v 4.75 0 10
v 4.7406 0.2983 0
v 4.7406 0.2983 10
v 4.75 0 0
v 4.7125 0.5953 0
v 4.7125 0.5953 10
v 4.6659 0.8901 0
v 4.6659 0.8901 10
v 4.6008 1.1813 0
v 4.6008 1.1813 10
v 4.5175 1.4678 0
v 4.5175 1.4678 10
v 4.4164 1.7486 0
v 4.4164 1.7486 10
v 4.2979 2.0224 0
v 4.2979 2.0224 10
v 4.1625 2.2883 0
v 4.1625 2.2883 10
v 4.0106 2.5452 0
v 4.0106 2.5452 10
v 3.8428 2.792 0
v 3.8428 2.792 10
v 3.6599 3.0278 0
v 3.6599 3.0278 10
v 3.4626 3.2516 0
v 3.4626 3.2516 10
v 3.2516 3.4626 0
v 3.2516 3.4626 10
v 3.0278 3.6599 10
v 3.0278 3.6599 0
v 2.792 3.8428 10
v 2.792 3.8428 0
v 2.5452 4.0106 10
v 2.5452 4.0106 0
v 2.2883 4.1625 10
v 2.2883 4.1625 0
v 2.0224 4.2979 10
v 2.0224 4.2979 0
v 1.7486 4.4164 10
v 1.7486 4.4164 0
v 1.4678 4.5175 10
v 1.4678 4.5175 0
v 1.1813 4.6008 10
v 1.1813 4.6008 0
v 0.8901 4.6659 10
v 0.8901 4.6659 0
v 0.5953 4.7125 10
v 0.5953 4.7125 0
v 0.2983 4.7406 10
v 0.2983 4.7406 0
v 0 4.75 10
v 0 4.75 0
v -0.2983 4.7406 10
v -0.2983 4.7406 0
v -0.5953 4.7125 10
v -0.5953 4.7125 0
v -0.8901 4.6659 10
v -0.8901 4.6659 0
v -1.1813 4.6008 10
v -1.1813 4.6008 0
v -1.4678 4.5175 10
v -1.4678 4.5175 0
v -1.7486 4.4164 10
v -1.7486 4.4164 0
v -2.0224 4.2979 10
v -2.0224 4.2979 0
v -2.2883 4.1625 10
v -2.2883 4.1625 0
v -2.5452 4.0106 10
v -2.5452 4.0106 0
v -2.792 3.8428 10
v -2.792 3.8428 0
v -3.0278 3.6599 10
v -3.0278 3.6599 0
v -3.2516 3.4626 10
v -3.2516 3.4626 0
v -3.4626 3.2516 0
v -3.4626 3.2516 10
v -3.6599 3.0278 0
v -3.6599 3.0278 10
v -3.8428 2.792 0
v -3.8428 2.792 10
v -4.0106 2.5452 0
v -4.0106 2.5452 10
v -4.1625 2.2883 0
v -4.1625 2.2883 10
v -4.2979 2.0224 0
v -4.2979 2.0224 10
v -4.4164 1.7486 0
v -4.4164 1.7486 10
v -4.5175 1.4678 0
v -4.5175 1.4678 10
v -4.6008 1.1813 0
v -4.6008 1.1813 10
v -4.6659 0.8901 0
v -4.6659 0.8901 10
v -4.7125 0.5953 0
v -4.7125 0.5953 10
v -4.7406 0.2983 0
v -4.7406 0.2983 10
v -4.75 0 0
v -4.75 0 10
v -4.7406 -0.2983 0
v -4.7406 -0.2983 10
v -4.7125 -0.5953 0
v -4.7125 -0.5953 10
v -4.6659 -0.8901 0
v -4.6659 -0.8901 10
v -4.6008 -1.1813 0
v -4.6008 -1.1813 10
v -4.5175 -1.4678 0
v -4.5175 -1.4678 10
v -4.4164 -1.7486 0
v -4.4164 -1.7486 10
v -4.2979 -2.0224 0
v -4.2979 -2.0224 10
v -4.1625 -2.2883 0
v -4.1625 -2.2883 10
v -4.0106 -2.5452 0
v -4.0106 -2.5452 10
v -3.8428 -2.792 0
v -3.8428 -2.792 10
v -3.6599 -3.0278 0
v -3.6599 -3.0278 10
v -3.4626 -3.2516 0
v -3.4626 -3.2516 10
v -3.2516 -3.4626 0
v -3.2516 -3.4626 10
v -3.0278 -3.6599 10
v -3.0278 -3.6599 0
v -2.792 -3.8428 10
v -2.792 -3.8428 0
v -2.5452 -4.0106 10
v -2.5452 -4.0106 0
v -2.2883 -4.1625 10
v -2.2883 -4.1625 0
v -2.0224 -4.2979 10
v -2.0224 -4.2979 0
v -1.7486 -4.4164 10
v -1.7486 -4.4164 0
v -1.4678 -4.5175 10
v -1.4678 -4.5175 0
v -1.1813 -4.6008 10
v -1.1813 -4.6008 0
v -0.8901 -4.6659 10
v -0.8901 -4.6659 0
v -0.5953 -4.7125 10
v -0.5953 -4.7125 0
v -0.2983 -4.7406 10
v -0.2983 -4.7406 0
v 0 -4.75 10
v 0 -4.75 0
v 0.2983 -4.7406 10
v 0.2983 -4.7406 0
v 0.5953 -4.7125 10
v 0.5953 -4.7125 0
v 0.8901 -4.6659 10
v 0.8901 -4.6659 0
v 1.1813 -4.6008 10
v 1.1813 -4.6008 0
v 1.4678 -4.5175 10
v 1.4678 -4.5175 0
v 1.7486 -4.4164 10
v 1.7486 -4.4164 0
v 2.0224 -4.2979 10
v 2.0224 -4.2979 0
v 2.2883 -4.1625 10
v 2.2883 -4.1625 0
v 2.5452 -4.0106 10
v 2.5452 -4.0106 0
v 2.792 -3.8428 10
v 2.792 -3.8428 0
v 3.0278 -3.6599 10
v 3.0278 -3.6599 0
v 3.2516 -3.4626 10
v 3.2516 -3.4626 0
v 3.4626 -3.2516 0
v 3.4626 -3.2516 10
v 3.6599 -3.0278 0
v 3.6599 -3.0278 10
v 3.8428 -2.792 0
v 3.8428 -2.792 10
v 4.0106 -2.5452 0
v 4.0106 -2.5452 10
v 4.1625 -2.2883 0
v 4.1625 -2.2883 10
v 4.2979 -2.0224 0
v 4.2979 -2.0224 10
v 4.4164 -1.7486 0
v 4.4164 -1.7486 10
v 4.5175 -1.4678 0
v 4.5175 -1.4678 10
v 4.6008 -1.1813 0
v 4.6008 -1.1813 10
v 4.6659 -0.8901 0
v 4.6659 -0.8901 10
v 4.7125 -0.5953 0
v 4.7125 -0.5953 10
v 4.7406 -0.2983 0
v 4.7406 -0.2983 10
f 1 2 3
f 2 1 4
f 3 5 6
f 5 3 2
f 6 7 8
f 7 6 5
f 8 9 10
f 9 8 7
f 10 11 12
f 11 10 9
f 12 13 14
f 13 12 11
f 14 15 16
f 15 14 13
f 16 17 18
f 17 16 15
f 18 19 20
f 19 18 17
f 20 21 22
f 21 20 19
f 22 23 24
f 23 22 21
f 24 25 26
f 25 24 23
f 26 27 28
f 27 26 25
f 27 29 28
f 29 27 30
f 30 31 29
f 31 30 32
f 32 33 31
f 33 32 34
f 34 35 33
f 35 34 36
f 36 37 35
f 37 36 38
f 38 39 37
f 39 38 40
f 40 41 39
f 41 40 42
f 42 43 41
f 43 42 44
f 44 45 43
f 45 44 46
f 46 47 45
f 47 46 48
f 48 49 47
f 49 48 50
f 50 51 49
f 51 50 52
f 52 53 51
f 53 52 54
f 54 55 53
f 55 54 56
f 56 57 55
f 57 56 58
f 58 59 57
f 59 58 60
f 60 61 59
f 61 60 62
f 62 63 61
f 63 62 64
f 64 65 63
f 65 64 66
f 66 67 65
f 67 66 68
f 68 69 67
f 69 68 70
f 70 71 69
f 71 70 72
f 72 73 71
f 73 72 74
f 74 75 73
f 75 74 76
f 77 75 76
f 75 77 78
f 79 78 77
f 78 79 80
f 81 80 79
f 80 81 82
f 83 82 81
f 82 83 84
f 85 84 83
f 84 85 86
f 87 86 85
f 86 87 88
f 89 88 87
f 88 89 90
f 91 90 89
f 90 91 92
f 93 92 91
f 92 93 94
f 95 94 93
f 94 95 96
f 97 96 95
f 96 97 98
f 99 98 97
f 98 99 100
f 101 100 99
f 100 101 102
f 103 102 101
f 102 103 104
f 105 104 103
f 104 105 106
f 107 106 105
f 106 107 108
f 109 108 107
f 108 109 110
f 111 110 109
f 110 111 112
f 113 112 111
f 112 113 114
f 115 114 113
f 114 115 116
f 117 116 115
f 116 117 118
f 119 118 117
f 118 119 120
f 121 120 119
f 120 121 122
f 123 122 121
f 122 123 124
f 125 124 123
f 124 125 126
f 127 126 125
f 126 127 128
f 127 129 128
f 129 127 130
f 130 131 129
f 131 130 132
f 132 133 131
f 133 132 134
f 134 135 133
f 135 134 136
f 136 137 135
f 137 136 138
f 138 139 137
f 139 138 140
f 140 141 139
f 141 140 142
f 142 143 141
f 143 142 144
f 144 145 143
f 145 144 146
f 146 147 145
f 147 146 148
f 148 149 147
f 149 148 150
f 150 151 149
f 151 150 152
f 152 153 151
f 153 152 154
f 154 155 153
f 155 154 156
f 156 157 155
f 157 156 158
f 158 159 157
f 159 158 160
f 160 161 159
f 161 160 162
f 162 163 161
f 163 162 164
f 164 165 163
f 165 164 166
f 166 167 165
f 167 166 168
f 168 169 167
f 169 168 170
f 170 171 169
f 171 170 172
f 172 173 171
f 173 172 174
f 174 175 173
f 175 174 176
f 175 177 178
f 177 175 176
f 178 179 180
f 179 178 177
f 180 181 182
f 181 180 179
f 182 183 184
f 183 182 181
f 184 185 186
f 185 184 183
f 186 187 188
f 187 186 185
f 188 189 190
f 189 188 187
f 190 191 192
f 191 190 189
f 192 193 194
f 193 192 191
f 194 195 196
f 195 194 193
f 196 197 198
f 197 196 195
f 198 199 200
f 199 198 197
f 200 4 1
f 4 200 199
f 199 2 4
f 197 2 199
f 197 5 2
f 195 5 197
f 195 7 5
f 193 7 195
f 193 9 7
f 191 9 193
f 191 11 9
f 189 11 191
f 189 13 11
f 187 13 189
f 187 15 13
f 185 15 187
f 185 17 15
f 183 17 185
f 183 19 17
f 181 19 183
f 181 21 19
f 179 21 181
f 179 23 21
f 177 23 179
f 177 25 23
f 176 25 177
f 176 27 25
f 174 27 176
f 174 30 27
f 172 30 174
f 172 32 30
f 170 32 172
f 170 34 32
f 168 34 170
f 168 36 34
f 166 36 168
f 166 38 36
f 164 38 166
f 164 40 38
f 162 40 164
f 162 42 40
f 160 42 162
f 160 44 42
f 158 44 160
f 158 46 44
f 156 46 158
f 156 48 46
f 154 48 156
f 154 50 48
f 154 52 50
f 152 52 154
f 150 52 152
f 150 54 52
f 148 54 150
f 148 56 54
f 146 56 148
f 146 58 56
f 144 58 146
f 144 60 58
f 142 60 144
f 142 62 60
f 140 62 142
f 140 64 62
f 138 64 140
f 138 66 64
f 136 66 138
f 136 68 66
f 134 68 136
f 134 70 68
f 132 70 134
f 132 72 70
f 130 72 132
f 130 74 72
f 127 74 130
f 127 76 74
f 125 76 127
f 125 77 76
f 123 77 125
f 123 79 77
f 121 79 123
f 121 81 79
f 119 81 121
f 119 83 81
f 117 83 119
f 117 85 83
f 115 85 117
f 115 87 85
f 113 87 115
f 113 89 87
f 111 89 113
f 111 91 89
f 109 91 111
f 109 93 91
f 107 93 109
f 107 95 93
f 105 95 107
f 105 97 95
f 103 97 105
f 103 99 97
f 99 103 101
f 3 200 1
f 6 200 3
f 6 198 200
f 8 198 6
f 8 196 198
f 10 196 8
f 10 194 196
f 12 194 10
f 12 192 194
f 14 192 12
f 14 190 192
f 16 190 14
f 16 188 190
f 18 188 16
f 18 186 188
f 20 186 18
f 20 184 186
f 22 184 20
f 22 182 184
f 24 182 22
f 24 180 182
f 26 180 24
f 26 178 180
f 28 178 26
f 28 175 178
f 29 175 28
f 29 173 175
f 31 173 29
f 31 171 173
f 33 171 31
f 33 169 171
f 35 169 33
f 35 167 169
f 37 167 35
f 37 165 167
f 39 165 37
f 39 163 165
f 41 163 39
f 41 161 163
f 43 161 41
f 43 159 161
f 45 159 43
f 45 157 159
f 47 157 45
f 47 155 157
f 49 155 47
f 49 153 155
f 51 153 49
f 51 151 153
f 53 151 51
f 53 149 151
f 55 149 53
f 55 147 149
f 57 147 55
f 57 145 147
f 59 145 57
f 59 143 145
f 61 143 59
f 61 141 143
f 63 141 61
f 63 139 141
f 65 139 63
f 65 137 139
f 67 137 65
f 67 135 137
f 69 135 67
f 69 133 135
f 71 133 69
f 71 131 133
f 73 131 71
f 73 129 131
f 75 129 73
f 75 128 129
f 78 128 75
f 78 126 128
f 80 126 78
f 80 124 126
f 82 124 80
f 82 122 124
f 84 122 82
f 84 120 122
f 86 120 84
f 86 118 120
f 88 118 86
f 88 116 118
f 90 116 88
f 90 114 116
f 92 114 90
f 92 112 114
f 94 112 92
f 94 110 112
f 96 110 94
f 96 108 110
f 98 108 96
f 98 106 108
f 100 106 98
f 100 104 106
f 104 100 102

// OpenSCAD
BEARING_SIZE = 10;

module bearing(){
  cylinder(d=BEARING_SIZE-0.5,h=10,$fn=100);
}

bearing();
